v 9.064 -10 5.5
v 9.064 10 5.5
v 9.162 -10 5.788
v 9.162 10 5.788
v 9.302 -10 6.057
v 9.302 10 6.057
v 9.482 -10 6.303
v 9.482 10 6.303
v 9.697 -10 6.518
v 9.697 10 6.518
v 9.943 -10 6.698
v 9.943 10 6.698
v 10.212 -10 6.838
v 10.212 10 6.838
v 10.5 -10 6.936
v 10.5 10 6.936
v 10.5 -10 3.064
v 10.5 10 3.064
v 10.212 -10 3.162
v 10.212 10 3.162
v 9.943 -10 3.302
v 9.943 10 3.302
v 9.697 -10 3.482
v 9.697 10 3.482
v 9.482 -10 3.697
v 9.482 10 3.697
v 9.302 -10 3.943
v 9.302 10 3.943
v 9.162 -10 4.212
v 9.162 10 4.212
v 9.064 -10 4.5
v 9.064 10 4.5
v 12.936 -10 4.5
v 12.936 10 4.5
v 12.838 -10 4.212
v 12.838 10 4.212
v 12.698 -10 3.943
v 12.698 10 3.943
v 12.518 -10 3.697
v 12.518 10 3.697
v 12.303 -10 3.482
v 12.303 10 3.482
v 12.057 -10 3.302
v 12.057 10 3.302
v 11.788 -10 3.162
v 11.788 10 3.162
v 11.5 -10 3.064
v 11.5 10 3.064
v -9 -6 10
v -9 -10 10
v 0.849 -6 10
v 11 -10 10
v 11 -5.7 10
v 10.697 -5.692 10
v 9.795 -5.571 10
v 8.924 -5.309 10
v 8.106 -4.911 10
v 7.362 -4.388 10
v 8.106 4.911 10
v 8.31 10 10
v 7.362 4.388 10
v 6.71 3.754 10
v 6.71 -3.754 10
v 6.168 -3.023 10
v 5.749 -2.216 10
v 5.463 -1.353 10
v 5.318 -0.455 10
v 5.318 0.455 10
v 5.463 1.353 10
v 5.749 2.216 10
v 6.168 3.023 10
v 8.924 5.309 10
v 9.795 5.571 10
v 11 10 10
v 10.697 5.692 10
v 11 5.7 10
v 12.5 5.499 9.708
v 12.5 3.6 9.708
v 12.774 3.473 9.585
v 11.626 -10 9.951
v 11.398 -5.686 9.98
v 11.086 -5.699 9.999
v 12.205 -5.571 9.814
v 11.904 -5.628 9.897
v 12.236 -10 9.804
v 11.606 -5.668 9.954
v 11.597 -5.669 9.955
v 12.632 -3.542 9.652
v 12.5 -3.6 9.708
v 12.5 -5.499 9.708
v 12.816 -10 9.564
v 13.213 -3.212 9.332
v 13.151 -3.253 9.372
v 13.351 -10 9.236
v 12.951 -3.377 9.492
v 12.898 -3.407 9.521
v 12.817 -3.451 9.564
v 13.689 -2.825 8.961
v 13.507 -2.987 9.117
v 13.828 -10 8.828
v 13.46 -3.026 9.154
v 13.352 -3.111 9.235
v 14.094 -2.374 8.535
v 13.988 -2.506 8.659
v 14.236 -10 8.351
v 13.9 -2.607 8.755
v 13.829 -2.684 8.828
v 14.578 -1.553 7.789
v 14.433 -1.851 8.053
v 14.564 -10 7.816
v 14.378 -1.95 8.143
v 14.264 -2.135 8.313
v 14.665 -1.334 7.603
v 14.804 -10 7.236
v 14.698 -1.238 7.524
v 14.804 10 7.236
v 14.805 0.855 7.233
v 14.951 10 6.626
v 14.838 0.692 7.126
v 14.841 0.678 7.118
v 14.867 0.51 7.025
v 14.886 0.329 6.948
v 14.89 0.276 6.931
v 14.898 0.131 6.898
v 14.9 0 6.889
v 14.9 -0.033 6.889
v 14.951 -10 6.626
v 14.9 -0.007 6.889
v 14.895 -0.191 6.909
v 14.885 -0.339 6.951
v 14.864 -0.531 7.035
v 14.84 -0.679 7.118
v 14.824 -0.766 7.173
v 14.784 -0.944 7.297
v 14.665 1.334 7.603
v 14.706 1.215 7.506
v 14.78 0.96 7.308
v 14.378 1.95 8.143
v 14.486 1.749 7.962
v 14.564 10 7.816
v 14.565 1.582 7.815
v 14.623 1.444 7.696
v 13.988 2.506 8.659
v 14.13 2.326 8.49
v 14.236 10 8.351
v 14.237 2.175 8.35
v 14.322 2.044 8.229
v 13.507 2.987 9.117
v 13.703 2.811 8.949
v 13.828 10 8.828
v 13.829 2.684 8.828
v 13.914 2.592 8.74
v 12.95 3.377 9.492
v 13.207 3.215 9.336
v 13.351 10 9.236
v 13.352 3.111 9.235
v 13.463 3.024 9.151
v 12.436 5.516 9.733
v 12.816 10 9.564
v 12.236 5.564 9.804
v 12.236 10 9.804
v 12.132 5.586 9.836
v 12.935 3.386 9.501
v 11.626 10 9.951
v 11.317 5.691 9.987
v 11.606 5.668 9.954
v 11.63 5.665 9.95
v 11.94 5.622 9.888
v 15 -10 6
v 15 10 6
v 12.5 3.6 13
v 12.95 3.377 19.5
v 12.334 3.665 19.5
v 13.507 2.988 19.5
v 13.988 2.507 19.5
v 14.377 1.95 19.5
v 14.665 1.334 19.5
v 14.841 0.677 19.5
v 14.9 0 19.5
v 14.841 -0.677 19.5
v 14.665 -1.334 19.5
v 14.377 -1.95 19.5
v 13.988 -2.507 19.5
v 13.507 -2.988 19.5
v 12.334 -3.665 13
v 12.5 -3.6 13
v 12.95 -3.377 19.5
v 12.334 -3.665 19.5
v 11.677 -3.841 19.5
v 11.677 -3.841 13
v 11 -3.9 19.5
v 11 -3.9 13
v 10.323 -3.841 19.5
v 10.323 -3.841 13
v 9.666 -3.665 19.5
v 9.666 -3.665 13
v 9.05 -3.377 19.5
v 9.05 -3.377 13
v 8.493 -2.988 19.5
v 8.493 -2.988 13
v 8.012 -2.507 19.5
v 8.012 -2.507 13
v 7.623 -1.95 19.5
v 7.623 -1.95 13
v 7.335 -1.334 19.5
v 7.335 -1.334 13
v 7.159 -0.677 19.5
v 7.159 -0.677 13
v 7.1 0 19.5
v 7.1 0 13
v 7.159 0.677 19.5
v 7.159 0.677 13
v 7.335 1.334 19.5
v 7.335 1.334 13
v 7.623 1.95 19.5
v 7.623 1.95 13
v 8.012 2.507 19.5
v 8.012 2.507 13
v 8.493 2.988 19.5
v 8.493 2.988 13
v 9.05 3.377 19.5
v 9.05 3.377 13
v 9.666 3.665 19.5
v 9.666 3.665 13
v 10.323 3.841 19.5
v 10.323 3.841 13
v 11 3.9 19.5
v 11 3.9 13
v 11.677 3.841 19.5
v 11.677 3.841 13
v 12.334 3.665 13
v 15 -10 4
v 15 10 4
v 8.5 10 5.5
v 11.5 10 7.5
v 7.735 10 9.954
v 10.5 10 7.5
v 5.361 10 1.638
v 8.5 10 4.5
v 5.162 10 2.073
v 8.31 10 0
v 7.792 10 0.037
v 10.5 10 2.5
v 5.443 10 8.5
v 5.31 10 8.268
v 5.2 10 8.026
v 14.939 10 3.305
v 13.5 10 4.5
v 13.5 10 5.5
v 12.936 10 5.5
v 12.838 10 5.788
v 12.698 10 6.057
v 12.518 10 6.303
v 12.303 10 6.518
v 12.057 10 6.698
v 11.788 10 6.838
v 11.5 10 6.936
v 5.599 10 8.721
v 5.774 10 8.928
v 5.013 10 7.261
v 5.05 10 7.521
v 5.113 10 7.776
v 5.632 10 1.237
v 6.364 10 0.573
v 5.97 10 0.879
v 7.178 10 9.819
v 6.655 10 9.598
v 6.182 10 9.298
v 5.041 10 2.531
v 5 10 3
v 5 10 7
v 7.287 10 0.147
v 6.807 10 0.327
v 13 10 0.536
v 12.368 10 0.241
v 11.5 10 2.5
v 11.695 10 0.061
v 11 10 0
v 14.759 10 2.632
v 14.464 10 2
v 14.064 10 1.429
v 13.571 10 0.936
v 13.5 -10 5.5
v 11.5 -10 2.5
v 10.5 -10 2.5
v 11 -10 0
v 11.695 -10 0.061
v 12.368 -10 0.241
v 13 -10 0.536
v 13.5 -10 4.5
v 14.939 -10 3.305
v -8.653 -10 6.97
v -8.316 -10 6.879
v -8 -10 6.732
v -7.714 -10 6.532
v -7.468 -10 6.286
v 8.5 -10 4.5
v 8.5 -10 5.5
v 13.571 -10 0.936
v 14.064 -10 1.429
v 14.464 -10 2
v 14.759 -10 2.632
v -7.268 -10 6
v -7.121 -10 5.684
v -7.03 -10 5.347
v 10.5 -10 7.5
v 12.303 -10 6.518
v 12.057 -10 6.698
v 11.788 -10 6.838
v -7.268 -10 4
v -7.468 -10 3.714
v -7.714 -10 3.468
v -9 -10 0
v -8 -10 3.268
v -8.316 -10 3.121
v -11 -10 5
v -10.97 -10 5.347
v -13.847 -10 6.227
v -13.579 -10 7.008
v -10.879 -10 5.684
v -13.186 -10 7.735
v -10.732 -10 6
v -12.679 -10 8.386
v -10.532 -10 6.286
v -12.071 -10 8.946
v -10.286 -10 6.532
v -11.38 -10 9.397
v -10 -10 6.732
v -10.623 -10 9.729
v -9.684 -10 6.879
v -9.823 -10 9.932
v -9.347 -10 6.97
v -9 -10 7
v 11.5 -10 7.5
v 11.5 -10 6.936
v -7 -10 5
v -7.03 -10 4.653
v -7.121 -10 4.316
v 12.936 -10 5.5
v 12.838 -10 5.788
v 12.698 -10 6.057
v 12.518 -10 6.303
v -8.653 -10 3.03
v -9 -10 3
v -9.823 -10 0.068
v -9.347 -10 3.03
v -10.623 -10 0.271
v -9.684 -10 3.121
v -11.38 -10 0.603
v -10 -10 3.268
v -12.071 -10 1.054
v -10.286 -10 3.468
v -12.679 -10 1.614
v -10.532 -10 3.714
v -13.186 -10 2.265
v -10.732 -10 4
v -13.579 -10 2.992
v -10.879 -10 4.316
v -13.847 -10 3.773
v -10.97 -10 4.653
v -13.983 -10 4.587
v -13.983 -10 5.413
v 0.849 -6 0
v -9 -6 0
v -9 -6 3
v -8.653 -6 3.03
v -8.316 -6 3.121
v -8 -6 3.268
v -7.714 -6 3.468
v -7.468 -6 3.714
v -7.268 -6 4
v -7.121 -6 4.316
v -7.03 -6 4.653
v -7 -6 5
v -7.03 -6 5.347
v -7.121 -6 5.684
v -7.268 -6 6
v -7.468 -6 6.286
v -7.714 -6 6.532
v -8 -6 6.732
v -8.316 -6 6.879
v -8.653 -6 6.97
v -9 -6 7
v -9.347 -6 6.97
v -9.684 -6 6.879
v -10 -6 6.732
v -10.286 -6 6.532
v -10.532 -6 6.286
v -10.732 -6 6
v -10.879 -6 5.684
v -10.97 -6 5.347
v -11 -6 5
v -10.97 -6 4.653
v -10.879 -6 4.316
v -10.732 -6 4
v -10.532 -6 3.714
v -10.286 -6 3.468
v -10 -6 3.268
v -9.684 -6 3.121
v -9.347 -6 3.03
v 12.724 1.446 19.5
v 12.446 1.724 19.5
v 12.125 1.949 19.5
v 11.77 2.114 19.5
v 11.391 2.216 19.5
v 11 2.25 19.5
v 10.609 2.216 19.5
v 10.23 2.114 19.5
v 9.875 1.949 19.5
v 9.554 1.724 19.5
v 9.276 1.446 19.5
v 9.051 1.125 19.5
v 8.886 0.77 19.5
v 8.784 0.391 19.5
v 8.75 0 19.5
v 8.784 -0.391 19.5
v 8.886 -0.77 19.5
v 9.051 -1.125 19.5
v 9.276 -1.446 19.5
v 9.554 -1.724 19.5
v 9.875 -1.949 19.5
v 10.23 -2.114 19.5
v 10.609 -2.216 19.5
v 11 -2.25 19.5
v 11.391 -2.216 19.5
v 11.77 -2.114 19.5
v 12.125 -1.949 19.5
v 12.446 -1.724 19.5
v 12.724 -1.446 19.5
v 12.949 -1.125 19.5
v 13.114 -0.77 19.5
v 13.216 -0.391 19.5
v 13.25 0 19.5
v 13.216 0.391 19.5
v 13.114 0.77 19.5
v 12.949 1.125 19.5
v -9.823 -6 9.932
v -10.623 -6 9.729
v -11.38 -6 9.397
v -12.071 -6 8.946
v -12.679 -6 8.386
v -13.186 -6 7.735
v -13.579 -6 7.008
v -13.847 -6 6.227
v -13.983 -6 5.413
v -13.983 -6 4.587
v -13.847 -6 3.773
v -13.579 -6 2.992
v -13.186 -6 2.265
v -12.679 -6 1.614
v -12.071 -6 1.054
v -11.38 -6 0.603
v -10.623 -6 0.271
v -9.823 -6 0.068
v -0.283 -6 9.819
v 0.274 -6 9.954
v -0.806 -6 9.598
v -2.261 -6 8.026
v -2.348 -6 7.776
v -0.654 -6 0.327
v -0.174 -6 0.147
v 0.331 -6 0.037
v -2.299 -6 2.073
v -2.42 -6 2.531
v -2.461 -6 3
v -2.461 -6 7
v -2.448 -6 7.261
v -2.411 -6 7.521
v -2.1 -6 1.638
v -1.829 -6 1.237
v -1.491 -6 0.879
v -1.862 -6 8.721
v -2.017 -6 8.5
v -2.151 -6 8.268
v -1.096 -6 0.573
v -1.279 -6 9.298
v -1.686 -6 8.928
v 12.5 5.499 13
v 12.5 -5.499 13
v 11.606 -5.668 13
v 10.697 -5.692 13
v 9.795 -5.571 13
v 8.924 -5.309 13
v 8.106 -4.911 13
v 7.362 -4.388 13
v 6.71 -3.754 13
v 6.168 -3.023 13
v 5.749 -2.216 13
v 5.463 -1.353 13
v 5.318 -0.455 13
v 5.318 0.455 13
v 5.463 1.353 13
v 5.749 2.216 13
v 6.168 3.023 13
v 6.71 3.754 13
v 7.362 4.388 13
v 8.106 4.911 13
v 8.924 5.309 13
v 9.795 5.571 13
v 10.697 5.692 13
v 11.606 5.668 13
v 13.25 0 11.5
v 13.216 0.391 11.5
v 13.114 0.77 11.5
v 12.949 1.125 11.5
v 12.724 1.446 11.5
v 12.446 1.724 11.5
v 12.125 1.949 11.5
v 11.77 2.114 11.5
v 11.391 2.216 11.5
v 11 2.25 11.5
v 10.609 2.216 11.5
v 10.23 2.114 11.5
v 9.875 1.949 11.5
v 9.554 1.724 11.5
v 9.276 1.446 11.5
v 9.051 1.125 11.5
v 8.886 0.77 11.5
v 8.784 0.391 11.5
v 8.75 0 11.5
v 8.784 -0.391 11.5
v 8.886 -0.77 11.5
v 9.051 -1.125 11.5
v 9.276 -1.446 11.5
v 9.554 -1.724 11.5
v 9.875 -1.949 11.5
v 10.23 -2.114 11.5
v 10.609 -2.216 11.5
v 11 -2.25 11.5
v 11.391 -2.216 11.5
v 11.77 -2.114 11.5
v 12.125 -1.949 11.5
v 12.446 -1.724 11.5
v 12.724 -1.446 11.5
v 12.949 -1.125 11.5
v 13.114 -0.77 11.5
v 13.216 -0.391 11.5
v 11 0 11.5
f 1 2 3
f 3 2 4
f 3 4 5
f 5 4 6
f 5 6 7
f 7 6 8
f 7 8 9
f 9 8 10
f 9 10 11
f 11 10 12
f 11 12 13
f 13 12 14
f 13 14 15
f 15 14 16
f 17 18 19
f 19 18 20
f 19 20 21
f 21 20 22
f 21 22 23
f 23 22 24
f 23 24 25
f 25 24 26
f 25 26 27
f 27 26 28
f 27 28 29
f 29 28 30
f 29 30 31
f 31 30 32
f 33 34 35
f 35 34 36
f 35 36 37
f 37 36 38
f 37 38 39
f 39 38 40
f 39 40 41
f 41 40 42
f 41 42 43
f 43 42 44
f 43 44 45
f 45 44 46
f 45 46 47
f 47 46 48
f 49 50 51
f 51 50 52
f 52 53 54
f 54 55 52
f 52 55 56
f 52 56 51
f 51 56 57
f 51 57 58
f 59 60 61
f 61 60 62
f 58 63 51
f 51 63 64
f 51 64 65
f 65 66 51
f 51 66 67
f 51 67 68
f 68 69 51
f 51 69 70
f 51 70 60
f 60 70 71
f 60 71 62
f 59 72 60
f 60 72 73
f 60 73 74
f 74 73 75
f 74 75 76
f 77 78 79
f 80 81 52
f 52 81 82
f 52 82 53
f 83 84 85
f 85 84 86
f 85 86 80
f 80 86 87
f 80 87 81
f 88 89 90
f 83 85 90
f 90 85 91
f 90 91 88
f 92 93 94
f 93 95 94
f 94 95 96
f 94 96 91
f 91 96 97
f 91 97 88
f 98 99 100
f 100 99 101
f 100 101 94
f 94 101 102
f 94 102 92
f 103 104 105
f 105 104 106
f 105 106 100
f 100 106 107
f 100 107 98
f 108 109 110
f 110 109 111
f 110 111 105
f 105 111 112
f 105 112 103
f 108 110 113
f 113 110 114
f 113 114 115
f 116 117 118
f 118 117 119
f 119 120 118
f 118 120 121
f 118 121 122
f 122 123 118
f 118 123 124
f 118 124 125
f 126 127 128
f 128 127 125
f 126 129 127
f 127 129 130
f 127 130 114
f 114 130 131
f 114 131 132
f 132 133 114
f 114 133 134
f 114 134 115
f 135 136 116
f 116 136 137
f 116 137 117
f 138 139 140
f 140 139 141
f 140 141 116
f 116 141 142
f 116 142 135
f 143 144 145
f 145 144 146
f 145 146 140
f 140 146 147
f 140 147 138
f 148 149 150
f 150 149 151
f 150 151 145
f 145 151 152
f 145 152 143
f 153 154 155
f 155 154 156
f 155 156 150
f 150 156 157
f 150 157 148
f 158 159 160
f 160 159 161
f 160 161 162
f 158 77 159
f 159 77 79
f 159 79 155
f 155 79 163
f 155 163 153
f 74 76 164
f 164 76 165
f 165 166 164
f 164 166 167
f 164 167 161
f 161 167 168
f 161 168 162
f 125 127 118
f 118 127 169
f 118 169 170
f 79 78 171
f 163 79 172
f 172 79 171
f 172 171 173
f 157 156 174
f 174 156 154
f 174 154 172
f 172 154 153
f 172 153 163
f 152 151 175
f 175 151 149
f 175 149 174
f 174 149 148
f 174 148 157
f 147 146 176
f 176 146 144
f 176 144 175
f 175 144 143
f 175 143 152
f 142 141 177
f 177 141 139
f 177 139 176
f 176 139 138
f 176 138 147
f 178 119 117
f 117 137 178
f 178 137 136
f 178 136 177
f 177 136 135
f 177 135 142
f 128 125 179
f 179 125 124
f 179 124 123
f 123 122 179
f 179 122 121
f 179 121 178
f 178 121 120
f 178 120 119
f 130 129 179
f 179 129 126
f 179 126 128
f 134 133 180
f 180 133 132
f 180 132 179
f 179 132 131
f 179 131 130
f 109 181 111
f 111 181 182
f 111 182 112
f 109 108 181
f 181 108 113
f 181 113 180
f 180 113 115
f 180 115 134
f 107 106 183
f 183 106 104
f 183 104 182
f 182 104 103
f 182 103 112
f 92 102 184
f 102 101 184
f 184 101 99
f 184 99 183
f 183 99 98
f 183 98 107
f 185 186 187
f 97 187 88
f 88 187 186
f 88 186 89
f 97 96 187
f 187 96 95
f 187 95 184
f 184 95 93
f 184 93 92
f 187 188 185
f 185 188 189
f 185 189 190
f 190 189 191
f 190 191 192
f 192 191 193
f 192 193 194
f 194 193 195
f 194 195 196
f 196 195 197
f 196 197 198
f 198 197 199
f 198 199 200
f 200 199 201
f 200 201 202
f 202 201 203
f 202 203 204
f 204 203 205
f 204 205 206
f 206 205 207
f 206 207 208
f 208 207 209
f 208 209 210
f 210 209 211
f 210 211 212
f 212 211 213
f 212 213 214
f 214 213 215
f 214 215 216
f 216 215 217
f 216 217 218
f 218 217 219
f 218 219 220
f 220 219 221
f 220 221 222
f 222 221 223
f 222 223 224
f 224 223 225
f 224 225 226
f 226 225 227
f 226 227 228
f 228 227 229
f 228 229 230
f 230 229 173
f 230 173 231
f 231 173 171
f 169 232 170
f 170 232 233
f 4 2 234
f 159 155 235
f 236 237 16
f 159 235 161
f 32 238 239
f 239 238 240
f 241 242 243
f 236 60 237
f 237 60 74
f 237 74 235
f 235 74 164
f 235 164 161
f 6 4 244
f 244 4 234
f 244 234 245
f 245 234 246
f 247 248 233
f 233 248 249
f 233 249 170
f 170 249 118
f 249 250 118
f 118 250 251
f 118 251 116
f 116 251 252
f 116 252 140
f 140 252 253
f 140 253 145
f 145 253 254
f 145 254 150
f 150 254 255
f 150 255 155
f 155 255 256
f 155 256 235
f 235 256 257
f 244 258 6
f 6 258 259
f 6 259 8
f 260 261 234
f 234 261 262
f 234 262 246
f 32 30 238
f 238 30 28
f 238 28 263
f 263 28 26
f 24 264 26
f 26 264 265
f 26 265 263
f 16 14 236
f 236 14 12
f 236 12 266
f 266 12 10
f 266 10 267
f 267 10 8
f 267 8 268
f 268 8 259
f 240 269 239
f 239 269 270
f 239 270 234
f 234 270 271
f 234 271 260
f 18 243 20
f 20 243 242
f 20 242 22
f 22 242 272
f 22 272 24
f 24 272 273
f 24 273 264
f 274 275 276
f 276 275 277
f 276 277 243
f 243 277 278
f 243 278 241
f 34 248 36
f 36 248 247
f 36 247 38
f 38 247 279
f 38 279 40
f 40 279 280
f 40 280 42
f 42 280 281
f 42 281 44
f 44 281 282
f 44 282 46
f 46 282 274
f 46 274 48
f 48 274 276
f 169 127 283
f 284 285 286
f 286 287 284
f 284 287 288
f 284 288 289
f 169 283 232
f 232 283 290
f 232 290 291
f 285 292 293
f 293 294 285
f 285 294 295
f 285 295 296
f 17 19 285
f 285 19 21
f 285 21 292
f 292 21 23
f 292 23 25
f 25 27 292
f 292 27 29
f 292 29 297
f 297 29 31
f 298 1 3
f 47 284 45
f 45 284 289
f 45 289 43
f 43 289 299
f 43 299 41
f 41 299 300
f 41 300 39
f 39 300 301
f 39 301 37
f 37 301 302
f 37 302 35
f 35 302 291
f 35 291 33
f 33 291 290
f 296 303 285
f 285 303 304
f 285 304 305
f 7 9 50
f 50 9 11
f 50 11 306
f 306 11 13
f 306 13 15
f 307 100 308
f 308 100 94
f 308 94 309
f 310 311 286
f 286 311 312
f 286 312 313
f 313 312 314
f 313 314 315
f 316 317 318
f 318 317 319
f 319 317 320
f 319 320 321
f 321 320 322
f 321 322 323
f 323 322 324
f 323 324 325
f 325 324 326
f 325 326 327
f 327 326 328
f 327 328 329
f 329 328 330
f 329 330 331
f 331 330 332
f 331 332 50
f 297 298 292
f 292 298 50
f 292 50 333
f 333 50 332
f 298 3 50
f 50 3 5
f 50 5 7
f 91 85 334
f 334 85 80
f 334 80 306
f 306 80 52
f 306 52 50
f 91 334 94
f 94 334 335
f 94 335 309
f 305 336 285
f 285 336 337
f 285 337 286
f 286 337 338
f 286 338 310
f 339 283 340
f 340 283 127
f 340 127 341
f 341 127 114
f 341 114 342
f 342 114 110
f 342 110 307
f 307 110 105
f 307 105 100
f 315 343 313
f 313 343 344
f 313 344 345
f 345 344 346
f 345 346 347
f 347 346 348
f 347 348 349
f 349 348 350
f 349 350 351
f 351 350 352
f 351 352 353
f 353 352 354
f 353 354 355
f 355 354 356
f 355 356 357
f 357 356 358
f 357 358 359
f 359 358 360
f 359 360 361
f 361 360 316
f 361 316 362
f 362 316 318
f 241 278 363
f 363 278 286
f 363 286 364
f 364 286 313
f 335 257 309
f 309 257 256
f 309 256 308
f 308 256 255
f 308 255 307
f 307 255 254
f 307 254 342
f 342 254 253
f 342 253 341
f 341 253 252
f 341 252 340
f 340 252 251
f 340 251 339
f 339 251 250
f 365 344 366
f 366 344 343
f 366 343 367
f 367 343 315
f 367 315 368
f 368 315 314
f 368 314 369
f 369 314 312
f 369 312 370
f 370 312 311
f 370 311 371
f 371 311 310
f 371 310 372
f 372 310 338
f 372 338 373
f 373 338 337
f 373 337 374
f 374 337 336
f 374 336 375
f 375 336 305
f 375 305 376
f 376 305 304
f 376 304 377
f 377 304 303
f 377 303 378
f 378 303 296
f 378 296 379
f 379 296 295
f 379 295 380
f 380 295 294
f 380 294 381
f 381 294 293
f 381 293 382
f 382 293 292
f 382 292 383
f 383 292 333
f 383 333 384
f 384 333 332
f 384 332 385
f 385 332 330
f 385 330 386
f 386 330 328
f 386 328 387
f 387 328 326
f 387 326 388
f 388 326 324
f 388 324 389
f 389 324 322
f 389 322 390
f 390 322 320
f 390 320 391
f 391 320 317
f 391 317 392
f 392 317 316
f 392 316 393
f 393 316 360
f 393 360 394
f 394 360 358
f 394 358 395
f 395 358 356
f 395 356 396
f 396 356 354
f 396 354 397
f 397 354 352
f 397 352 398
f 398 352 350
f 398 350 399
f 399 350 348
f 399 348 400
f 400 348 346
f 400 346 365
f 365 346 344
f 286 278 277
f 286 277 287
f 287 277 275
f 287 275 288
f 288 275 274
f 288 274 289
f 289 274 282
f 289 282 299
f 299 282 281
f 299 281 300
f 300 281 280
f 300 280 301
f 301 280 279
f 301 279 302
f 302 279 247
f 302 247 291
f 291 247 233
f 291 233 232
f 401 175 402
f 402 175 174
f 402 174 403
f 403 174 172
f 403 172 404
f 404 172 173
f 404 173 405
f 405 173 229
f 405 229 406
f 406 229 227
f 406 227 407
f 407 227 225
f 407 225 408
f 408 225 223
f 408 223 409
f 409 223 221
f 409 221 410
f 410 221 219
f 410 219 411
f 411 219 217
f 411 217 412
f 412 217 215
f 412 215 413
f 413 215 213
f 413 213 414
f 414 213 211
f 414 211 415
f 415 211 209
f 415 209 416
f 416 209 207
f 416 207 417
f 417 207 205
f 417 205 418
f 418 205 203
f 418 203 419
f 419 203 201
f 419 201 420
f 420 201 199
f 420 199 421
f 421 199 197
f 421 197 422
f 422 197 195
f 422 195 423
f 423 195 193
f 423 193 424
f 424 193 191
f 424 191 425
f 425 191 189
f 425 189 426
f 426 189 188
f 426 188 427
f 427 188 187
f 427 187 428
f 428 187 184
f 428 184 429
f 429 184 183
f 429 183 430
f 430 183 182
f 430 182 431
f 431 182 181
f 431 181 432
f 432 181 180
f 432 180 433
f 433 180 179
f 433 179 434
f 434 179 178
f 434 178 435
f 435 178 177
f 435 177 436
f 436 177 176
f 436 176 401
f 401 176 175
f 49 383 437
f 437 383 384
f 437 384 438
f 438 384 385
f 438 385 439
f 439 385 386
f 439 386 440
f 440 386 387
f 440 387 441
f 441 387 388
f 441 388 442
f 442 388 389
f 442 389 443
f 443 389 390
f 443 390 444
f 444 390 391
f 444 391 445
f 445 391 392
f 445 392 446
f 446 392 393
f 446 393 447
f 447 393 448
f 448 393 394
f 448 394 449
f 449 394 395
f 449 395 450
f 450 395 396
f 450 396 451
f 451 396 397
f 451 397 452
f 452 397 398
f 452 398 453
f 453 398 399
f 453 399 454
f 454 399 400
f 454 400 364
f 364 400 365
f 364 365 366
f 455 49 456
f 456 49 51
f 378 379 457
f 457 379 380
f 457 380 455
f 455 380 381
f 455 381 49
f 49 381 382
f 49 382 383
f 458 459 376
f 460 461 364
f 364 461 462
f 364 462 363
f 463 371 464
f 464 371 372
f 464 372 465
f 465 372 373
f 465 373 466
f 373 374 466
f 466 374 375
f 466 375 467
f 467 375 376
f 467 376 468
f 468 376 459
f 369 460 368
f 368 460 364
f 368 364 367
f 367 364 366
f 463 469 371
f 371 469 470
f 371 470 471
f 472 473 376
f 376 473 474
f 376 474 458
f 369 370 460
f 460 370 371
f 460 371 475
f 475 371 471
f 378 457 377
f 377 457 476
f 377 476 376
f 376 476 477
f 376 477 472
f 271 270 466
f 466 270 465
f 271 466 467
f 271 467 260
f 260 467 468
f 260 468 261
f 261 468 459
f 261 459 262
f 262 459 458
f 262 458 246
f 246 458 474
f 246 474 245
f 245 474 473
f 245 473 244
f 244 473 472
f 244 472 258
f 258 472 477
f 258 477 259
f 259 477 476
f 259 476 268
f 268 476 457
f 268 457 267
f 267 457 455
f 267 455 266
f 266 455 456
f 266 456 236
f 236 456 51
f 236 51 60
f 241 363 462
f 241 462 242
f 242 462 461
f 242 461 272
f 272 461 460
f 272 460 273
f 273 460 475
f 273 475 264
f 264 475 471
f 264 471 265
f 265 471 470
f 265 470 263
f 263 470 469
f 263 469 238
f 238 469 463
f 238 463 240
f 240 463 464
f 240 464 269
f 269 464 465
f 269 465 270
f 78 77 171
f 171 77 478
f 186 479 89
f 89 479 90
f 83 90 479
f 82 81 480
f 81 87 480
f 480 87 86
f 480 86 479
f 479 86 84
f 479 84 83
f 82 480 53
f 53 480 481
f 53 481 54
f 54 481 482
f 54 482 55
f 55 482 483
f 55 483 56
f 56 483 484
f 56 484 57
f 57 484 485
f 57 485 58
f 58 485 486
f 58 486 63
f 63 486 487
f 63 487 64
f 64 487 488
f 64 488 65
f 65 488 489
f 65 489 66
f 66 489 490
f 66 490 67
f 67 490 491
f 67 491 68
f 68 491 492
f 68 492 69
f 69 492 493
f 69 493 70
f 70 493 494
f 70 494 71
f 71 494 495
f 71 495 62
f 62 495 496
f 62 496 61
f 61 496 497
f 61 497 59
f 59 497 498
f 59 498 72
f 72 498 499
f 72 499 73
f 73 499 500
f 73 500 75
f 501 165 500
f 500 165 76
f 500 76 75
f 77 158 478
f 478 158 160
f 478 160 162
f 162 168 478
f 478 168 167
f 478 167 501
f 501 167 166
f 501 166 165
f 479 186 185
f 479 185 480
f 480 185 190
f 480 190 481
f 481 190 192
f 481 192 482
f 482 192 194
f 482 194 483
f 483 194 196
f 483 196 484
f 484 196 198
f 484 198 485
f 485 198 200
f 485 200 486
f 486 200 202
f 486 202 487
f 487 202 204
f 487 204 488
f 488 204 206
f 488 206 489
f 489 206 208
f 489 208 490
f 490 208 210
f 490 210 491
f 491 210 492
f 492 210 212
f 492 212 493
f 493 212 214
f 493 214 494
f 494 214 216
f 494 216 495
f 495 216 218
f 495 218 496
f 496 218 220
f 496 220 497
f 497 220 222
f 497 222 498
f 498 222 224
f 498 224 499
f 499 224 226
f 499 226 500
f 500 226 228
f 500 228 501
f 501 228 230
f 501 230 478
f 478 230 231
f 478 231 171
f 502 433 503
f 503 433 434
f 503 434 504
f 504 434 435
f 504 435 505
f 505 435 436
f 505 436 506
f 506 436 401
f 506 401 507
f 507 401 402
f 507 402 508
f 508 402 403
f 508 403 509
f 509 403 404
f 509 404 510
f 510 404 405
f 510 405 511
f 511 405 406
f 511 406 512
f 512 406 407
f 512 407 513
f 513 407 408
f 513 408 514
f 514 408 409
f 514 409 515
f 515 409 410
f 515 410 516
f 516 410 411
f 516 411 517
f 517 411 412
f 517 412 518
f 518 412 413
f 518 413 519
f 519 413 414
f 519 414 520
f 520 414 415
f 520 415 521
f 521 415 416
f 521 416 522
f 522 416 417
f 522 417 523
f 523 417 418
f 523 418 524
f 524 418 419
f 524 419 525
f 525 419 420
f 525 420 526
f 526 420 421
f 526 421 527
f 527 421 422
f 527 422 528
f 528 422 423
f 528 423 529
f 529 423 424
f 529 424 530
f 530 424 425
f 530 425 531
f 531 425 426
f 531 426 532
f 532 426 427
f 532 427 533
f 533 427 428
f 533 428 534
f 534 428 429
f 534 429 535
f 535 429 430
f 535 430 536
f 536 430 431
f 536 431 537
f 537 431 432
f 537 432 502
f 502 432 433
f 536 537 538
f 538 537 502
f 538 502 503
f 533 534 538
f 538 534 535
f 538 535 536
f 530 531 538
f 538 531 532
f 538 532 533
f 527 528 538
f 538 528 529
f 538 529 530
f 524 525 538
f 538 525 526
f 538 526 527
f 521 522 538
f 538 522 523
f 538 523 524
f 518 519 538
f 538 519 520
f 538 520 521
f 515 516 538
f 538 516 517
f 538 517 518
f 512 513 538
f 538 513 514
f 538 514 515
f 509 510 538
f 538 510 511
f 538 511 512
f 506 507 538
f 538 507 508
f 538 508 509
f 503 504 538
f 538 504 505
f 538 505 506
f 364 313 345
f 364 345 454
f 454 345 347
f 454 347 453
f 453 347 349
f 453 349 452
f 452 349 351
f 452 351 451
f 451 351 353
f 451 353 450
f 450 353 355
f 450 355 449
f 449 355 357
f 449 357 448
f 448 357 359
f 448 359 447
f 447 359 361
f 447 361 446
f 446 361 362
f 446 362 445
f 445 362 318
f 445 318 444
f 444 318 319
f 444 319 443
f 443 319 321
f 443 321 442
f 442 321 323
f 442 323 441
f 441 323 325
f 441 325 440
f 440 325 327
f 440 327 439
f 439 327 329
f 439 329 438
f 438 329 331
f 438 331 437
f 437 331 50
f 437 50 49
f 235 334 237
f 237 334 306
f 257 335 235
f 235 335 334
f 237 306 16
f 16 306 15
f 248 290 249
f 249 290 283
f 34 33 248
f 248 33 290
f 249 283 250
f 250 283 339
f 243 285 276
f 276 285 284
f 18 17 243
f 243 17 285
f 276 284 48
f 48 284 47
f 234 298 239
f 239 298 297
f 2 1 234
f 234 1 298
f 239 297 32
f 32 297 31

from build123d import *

# Parameters (mm, degrees)
SKETCH1_W                            = 30
SKETCH1_H                            = 20
BOSS_EXTRUDE1_DEPTH                  = 10
SKETCH3_R                            = 2
CUT_EXTRUDE1_DEPTH                   = 27.925824036
SKETCH4_R                            = 2
CUT_EXTRUDE2_DEPTH                   = 27.925824036
FILLET1_R                            = 4
SKETCH5_R                            = 3.9
BOSS_EXTRUDE2_DEPTH                  = 9.5
BOSS_EXTRUDE2_DIRECTION_2_REACH      = 22.616
BOSS_EXTRUDE2_DIRECTION_2_END_RADIUS = 4
CUT_EXTRUDE3_DEPTH                   = 21.615528249
FILLET3_R                            = 3
BOSS_EXTRUDE3_START                  = -0.291901
BOSS_EXTRUDE3_DEPTH                  = 3.291901
SKETCH8_R                            = 2.25
CUT_EXTRUDE4_DEPTH                   = 8
CUT_EXTRUDE5_DEPTH                   = 32.705677897
CUT_EXTRUDE6_DEPTH                   = 32.705677897


with BuildPart() as part:
    # Sketch1 → Boss-Extrude1 (new body)
    with BuildSketch(Plane.XY):
        Rectangle(SKETCH1_W, SKETCH1_H)
    extrude(amount=BOSS_EXTRUDE1_DEPTH)

    # Sketch3 → Cut-Extrude1 (cut, through all)
    with BuildSketch(Plane(origin=(0, 10, 0), x_dir=(1, 0, 0), z_dir=(0, 1, 0))):
        with Locations(Location((11, -5, 0), (0, 0, 270))):
            Circle(SKETCH3_R)
    extrude(amount=-CUT_EXTRUDE1_DEPTH, mode=Mode.SUBTRACT)

    # Sketch4 → Cut-Extrude2 (cut, through all)
    with BuildSketch(Plane.XZ.offset(10)):
        with Locations(Location((-9, 5, 0), (0, 0, 270))):
            Circle(SKETCH4_R)
    extrude(amount=-CUT_EXTRUDE2_DEPTH, mode=Mode.SUBTRACT)

    # Fillet1
    fillet1_edges = [part.edges().sort_by_distance(p)[0] for p in [
        (15, 0, 10),
        (15, 0, 0),
    ]]
    fillet(fillet1_edges, radius=FILLET1_R)

    # Sketch5 → Boss-Extrude2 (add)
    with BuildSketch(Plane.XY.offset(10)):
        with Locations(Location((11, 0, 0), (0, 0, 180))):
            Circle(SKETCH5_R)
    extrude(amount=BOSS_EXTRUDE2_DEPTH)

    # Boss-Extrude2 direction 2: up to this cylinder (the profile starts outside it)
    boss_extrude2_direction_2_end = Plane(origin=(11, 0, 6), z_dir=(0, -1, 0)) * Cylinder(BOSS_EXTRUDE2_DIRECTION_2_END_RADIUS, 54.232, mode=Mode.PRIVATE)
    # Sketch5 → Boss-Extrude2 direction 2 (add, up to the surface)
    with BuildSketch(Plane.XY.offset(10), mode=Mode.PRIVATE) as boss_extrude2_direction_2_sk1:
        with Locations(Location((11, 0, 0), (0, 0, 180))):
            Circle(SKETCH5_R)
    boss_extrude2_direction_2_tool1 = extrude(boss_extrude2_direction_2_sk1.sketch, amount=-BOSS_EXTRUDE2_DIRECTION_2_REACH, mode=Mode.PRIVATE) - boss_extrude2_direction_2_end
    add(boss_extrude2_direction_2_tool1.solids().sort_by_distance((11, 0, 10))[0])
    add(boss_extrude2_direction_2_tool1.solids().sort_by_distance((11, 0, 10))[1])

    # Sketch6 → Cut-Extrude3 (cut, through all)
    with BuildSketch(Plane.XY.offset(10)):
        Polygon((-15, -6), (-2.46092253, -6), (5, 10), (-15, 10), align=None)
    extrude(amount=-CUT_EXTRUDE3_DEPTH, mode=Mode.SUBTRACT)

    # Fillet3
    fillet3_edges = [part.edges().sort_by_distance(p)[0] for p in [
        (1.269538735, 2, 0),
        (1.269538735, 2, 10),
    ]]
    fillet(fillet3_edges, radius=FILLET3_R)

    # Sketch7 → Boss-Extrude3 (add)
    with BuildSketch(Plane.XY.offset(10).offset(BOSS_EXTRUDE3_START)):
        with BuildLine():
            Line((12.5, 5.499090834), (12.5, -5.499090834))
            ThreePointArc((12.5, -5.499090834), (5.3, 0), (12.5, 5.499090834))
        make_face()
    extrude(amount=BOSS_EXTRUDE3_DEPTH)

    # Sketch8 → Cut-Extrude4 (cut)
    with BuildSketch(Plane.XY.offset(19.5)):
        with Locations((11, 0)):
            Circle(SKETCH8_R)
    extrude(amount=-CUT_EXTRUDE4_DEPTH, mode=Mode.SUBTRACT)

    # Sketch9 → Cut-Extrude5 (cut, through all)
    with BuildSketch(Plane.XZ.offset(10)):
        with BuildLine():
            Line((-9, 10), (-15, 10))
            Line((-15, 10), (-15, 0))
            Line((-15, 0), (-9, 0))
            ThreePointArc((-9, 0), (-14, 5), (-9, 10))
        make_face()
    extrude(amount=-CUT_EXTRUDE5_DEPTH, mode=Mode.SUBTRACT)

    # Sketch10 → Cut-Extrude6 (cut, through all)
    with BuildSketch(Plane(origin=(0, 10, 0), x_dir=(1, 0, 0), z_dir=(0, 1, 0))):
        with BuildLine():
            Line((8.5, -4.5), (9.063508327, -4.5))
            ThreePointArc((9.063508327, -4.5), (9.015940607, -4.747991415), (9, -5))
            ThreePointArc((9, -5), (9.015940607, -5.252008585), (9.063508327, -5.5))
            Line((9.063508327, -5.5), (8.5, -5.5))
            Line((8.5, -5.5), (8.5, -4.5))
        make_face()
        with BuildLine():
            Line((10.5, -2.5), (10.5, -3.063508327))
            ThreePointArc((10.5, -3.063508327), (10.747991415, -3.015940607), (11, -3))
            ThreePointArc((11, -3), (11.252008585, -3.015940607), (11.5, -3.063508327))
            Line((11.5, -3.063508327), (11.5, -2.5))
            Line((11.5, -2.5), (10.5, -2.5))
        make_face()
        with BuildLine():
            Line((13.5, -4.5), (12.936491673, -4.5))
            ThreePointArc((12.936491673, -4.5), (12.984059393, -4.747991415), (13, -5))
            ThreePointArc((13, -5), (12.984059393, -5.252008585), (12.936491673, -5.5))
            Line((12.936491673, -5.5), (13.5, -5.5))
            Line((13.5, -5.5), (13.5, -4.5))
        make_face()
        with BuildLine():
            Line((11.5, -7.5), (11.5, -6.936491673))
            ThreePointArc((11.5, -6.936491673), (11.252008585, -6.984059393), (11, -7))
            ThreePointArc((11, -7), (10.747991415, -6.984059393), (10.5, -6.936491673))
            Line((10.5, -6.936491673), (10.5, -7.5))
            Line((10.5, -7.5), (11.5, -7.5))
        make_face()
    extrude(amount=-CUT_EXTRUDE6_DEPTH, mode=Mode.SUBTRACT)


solid = part.part
